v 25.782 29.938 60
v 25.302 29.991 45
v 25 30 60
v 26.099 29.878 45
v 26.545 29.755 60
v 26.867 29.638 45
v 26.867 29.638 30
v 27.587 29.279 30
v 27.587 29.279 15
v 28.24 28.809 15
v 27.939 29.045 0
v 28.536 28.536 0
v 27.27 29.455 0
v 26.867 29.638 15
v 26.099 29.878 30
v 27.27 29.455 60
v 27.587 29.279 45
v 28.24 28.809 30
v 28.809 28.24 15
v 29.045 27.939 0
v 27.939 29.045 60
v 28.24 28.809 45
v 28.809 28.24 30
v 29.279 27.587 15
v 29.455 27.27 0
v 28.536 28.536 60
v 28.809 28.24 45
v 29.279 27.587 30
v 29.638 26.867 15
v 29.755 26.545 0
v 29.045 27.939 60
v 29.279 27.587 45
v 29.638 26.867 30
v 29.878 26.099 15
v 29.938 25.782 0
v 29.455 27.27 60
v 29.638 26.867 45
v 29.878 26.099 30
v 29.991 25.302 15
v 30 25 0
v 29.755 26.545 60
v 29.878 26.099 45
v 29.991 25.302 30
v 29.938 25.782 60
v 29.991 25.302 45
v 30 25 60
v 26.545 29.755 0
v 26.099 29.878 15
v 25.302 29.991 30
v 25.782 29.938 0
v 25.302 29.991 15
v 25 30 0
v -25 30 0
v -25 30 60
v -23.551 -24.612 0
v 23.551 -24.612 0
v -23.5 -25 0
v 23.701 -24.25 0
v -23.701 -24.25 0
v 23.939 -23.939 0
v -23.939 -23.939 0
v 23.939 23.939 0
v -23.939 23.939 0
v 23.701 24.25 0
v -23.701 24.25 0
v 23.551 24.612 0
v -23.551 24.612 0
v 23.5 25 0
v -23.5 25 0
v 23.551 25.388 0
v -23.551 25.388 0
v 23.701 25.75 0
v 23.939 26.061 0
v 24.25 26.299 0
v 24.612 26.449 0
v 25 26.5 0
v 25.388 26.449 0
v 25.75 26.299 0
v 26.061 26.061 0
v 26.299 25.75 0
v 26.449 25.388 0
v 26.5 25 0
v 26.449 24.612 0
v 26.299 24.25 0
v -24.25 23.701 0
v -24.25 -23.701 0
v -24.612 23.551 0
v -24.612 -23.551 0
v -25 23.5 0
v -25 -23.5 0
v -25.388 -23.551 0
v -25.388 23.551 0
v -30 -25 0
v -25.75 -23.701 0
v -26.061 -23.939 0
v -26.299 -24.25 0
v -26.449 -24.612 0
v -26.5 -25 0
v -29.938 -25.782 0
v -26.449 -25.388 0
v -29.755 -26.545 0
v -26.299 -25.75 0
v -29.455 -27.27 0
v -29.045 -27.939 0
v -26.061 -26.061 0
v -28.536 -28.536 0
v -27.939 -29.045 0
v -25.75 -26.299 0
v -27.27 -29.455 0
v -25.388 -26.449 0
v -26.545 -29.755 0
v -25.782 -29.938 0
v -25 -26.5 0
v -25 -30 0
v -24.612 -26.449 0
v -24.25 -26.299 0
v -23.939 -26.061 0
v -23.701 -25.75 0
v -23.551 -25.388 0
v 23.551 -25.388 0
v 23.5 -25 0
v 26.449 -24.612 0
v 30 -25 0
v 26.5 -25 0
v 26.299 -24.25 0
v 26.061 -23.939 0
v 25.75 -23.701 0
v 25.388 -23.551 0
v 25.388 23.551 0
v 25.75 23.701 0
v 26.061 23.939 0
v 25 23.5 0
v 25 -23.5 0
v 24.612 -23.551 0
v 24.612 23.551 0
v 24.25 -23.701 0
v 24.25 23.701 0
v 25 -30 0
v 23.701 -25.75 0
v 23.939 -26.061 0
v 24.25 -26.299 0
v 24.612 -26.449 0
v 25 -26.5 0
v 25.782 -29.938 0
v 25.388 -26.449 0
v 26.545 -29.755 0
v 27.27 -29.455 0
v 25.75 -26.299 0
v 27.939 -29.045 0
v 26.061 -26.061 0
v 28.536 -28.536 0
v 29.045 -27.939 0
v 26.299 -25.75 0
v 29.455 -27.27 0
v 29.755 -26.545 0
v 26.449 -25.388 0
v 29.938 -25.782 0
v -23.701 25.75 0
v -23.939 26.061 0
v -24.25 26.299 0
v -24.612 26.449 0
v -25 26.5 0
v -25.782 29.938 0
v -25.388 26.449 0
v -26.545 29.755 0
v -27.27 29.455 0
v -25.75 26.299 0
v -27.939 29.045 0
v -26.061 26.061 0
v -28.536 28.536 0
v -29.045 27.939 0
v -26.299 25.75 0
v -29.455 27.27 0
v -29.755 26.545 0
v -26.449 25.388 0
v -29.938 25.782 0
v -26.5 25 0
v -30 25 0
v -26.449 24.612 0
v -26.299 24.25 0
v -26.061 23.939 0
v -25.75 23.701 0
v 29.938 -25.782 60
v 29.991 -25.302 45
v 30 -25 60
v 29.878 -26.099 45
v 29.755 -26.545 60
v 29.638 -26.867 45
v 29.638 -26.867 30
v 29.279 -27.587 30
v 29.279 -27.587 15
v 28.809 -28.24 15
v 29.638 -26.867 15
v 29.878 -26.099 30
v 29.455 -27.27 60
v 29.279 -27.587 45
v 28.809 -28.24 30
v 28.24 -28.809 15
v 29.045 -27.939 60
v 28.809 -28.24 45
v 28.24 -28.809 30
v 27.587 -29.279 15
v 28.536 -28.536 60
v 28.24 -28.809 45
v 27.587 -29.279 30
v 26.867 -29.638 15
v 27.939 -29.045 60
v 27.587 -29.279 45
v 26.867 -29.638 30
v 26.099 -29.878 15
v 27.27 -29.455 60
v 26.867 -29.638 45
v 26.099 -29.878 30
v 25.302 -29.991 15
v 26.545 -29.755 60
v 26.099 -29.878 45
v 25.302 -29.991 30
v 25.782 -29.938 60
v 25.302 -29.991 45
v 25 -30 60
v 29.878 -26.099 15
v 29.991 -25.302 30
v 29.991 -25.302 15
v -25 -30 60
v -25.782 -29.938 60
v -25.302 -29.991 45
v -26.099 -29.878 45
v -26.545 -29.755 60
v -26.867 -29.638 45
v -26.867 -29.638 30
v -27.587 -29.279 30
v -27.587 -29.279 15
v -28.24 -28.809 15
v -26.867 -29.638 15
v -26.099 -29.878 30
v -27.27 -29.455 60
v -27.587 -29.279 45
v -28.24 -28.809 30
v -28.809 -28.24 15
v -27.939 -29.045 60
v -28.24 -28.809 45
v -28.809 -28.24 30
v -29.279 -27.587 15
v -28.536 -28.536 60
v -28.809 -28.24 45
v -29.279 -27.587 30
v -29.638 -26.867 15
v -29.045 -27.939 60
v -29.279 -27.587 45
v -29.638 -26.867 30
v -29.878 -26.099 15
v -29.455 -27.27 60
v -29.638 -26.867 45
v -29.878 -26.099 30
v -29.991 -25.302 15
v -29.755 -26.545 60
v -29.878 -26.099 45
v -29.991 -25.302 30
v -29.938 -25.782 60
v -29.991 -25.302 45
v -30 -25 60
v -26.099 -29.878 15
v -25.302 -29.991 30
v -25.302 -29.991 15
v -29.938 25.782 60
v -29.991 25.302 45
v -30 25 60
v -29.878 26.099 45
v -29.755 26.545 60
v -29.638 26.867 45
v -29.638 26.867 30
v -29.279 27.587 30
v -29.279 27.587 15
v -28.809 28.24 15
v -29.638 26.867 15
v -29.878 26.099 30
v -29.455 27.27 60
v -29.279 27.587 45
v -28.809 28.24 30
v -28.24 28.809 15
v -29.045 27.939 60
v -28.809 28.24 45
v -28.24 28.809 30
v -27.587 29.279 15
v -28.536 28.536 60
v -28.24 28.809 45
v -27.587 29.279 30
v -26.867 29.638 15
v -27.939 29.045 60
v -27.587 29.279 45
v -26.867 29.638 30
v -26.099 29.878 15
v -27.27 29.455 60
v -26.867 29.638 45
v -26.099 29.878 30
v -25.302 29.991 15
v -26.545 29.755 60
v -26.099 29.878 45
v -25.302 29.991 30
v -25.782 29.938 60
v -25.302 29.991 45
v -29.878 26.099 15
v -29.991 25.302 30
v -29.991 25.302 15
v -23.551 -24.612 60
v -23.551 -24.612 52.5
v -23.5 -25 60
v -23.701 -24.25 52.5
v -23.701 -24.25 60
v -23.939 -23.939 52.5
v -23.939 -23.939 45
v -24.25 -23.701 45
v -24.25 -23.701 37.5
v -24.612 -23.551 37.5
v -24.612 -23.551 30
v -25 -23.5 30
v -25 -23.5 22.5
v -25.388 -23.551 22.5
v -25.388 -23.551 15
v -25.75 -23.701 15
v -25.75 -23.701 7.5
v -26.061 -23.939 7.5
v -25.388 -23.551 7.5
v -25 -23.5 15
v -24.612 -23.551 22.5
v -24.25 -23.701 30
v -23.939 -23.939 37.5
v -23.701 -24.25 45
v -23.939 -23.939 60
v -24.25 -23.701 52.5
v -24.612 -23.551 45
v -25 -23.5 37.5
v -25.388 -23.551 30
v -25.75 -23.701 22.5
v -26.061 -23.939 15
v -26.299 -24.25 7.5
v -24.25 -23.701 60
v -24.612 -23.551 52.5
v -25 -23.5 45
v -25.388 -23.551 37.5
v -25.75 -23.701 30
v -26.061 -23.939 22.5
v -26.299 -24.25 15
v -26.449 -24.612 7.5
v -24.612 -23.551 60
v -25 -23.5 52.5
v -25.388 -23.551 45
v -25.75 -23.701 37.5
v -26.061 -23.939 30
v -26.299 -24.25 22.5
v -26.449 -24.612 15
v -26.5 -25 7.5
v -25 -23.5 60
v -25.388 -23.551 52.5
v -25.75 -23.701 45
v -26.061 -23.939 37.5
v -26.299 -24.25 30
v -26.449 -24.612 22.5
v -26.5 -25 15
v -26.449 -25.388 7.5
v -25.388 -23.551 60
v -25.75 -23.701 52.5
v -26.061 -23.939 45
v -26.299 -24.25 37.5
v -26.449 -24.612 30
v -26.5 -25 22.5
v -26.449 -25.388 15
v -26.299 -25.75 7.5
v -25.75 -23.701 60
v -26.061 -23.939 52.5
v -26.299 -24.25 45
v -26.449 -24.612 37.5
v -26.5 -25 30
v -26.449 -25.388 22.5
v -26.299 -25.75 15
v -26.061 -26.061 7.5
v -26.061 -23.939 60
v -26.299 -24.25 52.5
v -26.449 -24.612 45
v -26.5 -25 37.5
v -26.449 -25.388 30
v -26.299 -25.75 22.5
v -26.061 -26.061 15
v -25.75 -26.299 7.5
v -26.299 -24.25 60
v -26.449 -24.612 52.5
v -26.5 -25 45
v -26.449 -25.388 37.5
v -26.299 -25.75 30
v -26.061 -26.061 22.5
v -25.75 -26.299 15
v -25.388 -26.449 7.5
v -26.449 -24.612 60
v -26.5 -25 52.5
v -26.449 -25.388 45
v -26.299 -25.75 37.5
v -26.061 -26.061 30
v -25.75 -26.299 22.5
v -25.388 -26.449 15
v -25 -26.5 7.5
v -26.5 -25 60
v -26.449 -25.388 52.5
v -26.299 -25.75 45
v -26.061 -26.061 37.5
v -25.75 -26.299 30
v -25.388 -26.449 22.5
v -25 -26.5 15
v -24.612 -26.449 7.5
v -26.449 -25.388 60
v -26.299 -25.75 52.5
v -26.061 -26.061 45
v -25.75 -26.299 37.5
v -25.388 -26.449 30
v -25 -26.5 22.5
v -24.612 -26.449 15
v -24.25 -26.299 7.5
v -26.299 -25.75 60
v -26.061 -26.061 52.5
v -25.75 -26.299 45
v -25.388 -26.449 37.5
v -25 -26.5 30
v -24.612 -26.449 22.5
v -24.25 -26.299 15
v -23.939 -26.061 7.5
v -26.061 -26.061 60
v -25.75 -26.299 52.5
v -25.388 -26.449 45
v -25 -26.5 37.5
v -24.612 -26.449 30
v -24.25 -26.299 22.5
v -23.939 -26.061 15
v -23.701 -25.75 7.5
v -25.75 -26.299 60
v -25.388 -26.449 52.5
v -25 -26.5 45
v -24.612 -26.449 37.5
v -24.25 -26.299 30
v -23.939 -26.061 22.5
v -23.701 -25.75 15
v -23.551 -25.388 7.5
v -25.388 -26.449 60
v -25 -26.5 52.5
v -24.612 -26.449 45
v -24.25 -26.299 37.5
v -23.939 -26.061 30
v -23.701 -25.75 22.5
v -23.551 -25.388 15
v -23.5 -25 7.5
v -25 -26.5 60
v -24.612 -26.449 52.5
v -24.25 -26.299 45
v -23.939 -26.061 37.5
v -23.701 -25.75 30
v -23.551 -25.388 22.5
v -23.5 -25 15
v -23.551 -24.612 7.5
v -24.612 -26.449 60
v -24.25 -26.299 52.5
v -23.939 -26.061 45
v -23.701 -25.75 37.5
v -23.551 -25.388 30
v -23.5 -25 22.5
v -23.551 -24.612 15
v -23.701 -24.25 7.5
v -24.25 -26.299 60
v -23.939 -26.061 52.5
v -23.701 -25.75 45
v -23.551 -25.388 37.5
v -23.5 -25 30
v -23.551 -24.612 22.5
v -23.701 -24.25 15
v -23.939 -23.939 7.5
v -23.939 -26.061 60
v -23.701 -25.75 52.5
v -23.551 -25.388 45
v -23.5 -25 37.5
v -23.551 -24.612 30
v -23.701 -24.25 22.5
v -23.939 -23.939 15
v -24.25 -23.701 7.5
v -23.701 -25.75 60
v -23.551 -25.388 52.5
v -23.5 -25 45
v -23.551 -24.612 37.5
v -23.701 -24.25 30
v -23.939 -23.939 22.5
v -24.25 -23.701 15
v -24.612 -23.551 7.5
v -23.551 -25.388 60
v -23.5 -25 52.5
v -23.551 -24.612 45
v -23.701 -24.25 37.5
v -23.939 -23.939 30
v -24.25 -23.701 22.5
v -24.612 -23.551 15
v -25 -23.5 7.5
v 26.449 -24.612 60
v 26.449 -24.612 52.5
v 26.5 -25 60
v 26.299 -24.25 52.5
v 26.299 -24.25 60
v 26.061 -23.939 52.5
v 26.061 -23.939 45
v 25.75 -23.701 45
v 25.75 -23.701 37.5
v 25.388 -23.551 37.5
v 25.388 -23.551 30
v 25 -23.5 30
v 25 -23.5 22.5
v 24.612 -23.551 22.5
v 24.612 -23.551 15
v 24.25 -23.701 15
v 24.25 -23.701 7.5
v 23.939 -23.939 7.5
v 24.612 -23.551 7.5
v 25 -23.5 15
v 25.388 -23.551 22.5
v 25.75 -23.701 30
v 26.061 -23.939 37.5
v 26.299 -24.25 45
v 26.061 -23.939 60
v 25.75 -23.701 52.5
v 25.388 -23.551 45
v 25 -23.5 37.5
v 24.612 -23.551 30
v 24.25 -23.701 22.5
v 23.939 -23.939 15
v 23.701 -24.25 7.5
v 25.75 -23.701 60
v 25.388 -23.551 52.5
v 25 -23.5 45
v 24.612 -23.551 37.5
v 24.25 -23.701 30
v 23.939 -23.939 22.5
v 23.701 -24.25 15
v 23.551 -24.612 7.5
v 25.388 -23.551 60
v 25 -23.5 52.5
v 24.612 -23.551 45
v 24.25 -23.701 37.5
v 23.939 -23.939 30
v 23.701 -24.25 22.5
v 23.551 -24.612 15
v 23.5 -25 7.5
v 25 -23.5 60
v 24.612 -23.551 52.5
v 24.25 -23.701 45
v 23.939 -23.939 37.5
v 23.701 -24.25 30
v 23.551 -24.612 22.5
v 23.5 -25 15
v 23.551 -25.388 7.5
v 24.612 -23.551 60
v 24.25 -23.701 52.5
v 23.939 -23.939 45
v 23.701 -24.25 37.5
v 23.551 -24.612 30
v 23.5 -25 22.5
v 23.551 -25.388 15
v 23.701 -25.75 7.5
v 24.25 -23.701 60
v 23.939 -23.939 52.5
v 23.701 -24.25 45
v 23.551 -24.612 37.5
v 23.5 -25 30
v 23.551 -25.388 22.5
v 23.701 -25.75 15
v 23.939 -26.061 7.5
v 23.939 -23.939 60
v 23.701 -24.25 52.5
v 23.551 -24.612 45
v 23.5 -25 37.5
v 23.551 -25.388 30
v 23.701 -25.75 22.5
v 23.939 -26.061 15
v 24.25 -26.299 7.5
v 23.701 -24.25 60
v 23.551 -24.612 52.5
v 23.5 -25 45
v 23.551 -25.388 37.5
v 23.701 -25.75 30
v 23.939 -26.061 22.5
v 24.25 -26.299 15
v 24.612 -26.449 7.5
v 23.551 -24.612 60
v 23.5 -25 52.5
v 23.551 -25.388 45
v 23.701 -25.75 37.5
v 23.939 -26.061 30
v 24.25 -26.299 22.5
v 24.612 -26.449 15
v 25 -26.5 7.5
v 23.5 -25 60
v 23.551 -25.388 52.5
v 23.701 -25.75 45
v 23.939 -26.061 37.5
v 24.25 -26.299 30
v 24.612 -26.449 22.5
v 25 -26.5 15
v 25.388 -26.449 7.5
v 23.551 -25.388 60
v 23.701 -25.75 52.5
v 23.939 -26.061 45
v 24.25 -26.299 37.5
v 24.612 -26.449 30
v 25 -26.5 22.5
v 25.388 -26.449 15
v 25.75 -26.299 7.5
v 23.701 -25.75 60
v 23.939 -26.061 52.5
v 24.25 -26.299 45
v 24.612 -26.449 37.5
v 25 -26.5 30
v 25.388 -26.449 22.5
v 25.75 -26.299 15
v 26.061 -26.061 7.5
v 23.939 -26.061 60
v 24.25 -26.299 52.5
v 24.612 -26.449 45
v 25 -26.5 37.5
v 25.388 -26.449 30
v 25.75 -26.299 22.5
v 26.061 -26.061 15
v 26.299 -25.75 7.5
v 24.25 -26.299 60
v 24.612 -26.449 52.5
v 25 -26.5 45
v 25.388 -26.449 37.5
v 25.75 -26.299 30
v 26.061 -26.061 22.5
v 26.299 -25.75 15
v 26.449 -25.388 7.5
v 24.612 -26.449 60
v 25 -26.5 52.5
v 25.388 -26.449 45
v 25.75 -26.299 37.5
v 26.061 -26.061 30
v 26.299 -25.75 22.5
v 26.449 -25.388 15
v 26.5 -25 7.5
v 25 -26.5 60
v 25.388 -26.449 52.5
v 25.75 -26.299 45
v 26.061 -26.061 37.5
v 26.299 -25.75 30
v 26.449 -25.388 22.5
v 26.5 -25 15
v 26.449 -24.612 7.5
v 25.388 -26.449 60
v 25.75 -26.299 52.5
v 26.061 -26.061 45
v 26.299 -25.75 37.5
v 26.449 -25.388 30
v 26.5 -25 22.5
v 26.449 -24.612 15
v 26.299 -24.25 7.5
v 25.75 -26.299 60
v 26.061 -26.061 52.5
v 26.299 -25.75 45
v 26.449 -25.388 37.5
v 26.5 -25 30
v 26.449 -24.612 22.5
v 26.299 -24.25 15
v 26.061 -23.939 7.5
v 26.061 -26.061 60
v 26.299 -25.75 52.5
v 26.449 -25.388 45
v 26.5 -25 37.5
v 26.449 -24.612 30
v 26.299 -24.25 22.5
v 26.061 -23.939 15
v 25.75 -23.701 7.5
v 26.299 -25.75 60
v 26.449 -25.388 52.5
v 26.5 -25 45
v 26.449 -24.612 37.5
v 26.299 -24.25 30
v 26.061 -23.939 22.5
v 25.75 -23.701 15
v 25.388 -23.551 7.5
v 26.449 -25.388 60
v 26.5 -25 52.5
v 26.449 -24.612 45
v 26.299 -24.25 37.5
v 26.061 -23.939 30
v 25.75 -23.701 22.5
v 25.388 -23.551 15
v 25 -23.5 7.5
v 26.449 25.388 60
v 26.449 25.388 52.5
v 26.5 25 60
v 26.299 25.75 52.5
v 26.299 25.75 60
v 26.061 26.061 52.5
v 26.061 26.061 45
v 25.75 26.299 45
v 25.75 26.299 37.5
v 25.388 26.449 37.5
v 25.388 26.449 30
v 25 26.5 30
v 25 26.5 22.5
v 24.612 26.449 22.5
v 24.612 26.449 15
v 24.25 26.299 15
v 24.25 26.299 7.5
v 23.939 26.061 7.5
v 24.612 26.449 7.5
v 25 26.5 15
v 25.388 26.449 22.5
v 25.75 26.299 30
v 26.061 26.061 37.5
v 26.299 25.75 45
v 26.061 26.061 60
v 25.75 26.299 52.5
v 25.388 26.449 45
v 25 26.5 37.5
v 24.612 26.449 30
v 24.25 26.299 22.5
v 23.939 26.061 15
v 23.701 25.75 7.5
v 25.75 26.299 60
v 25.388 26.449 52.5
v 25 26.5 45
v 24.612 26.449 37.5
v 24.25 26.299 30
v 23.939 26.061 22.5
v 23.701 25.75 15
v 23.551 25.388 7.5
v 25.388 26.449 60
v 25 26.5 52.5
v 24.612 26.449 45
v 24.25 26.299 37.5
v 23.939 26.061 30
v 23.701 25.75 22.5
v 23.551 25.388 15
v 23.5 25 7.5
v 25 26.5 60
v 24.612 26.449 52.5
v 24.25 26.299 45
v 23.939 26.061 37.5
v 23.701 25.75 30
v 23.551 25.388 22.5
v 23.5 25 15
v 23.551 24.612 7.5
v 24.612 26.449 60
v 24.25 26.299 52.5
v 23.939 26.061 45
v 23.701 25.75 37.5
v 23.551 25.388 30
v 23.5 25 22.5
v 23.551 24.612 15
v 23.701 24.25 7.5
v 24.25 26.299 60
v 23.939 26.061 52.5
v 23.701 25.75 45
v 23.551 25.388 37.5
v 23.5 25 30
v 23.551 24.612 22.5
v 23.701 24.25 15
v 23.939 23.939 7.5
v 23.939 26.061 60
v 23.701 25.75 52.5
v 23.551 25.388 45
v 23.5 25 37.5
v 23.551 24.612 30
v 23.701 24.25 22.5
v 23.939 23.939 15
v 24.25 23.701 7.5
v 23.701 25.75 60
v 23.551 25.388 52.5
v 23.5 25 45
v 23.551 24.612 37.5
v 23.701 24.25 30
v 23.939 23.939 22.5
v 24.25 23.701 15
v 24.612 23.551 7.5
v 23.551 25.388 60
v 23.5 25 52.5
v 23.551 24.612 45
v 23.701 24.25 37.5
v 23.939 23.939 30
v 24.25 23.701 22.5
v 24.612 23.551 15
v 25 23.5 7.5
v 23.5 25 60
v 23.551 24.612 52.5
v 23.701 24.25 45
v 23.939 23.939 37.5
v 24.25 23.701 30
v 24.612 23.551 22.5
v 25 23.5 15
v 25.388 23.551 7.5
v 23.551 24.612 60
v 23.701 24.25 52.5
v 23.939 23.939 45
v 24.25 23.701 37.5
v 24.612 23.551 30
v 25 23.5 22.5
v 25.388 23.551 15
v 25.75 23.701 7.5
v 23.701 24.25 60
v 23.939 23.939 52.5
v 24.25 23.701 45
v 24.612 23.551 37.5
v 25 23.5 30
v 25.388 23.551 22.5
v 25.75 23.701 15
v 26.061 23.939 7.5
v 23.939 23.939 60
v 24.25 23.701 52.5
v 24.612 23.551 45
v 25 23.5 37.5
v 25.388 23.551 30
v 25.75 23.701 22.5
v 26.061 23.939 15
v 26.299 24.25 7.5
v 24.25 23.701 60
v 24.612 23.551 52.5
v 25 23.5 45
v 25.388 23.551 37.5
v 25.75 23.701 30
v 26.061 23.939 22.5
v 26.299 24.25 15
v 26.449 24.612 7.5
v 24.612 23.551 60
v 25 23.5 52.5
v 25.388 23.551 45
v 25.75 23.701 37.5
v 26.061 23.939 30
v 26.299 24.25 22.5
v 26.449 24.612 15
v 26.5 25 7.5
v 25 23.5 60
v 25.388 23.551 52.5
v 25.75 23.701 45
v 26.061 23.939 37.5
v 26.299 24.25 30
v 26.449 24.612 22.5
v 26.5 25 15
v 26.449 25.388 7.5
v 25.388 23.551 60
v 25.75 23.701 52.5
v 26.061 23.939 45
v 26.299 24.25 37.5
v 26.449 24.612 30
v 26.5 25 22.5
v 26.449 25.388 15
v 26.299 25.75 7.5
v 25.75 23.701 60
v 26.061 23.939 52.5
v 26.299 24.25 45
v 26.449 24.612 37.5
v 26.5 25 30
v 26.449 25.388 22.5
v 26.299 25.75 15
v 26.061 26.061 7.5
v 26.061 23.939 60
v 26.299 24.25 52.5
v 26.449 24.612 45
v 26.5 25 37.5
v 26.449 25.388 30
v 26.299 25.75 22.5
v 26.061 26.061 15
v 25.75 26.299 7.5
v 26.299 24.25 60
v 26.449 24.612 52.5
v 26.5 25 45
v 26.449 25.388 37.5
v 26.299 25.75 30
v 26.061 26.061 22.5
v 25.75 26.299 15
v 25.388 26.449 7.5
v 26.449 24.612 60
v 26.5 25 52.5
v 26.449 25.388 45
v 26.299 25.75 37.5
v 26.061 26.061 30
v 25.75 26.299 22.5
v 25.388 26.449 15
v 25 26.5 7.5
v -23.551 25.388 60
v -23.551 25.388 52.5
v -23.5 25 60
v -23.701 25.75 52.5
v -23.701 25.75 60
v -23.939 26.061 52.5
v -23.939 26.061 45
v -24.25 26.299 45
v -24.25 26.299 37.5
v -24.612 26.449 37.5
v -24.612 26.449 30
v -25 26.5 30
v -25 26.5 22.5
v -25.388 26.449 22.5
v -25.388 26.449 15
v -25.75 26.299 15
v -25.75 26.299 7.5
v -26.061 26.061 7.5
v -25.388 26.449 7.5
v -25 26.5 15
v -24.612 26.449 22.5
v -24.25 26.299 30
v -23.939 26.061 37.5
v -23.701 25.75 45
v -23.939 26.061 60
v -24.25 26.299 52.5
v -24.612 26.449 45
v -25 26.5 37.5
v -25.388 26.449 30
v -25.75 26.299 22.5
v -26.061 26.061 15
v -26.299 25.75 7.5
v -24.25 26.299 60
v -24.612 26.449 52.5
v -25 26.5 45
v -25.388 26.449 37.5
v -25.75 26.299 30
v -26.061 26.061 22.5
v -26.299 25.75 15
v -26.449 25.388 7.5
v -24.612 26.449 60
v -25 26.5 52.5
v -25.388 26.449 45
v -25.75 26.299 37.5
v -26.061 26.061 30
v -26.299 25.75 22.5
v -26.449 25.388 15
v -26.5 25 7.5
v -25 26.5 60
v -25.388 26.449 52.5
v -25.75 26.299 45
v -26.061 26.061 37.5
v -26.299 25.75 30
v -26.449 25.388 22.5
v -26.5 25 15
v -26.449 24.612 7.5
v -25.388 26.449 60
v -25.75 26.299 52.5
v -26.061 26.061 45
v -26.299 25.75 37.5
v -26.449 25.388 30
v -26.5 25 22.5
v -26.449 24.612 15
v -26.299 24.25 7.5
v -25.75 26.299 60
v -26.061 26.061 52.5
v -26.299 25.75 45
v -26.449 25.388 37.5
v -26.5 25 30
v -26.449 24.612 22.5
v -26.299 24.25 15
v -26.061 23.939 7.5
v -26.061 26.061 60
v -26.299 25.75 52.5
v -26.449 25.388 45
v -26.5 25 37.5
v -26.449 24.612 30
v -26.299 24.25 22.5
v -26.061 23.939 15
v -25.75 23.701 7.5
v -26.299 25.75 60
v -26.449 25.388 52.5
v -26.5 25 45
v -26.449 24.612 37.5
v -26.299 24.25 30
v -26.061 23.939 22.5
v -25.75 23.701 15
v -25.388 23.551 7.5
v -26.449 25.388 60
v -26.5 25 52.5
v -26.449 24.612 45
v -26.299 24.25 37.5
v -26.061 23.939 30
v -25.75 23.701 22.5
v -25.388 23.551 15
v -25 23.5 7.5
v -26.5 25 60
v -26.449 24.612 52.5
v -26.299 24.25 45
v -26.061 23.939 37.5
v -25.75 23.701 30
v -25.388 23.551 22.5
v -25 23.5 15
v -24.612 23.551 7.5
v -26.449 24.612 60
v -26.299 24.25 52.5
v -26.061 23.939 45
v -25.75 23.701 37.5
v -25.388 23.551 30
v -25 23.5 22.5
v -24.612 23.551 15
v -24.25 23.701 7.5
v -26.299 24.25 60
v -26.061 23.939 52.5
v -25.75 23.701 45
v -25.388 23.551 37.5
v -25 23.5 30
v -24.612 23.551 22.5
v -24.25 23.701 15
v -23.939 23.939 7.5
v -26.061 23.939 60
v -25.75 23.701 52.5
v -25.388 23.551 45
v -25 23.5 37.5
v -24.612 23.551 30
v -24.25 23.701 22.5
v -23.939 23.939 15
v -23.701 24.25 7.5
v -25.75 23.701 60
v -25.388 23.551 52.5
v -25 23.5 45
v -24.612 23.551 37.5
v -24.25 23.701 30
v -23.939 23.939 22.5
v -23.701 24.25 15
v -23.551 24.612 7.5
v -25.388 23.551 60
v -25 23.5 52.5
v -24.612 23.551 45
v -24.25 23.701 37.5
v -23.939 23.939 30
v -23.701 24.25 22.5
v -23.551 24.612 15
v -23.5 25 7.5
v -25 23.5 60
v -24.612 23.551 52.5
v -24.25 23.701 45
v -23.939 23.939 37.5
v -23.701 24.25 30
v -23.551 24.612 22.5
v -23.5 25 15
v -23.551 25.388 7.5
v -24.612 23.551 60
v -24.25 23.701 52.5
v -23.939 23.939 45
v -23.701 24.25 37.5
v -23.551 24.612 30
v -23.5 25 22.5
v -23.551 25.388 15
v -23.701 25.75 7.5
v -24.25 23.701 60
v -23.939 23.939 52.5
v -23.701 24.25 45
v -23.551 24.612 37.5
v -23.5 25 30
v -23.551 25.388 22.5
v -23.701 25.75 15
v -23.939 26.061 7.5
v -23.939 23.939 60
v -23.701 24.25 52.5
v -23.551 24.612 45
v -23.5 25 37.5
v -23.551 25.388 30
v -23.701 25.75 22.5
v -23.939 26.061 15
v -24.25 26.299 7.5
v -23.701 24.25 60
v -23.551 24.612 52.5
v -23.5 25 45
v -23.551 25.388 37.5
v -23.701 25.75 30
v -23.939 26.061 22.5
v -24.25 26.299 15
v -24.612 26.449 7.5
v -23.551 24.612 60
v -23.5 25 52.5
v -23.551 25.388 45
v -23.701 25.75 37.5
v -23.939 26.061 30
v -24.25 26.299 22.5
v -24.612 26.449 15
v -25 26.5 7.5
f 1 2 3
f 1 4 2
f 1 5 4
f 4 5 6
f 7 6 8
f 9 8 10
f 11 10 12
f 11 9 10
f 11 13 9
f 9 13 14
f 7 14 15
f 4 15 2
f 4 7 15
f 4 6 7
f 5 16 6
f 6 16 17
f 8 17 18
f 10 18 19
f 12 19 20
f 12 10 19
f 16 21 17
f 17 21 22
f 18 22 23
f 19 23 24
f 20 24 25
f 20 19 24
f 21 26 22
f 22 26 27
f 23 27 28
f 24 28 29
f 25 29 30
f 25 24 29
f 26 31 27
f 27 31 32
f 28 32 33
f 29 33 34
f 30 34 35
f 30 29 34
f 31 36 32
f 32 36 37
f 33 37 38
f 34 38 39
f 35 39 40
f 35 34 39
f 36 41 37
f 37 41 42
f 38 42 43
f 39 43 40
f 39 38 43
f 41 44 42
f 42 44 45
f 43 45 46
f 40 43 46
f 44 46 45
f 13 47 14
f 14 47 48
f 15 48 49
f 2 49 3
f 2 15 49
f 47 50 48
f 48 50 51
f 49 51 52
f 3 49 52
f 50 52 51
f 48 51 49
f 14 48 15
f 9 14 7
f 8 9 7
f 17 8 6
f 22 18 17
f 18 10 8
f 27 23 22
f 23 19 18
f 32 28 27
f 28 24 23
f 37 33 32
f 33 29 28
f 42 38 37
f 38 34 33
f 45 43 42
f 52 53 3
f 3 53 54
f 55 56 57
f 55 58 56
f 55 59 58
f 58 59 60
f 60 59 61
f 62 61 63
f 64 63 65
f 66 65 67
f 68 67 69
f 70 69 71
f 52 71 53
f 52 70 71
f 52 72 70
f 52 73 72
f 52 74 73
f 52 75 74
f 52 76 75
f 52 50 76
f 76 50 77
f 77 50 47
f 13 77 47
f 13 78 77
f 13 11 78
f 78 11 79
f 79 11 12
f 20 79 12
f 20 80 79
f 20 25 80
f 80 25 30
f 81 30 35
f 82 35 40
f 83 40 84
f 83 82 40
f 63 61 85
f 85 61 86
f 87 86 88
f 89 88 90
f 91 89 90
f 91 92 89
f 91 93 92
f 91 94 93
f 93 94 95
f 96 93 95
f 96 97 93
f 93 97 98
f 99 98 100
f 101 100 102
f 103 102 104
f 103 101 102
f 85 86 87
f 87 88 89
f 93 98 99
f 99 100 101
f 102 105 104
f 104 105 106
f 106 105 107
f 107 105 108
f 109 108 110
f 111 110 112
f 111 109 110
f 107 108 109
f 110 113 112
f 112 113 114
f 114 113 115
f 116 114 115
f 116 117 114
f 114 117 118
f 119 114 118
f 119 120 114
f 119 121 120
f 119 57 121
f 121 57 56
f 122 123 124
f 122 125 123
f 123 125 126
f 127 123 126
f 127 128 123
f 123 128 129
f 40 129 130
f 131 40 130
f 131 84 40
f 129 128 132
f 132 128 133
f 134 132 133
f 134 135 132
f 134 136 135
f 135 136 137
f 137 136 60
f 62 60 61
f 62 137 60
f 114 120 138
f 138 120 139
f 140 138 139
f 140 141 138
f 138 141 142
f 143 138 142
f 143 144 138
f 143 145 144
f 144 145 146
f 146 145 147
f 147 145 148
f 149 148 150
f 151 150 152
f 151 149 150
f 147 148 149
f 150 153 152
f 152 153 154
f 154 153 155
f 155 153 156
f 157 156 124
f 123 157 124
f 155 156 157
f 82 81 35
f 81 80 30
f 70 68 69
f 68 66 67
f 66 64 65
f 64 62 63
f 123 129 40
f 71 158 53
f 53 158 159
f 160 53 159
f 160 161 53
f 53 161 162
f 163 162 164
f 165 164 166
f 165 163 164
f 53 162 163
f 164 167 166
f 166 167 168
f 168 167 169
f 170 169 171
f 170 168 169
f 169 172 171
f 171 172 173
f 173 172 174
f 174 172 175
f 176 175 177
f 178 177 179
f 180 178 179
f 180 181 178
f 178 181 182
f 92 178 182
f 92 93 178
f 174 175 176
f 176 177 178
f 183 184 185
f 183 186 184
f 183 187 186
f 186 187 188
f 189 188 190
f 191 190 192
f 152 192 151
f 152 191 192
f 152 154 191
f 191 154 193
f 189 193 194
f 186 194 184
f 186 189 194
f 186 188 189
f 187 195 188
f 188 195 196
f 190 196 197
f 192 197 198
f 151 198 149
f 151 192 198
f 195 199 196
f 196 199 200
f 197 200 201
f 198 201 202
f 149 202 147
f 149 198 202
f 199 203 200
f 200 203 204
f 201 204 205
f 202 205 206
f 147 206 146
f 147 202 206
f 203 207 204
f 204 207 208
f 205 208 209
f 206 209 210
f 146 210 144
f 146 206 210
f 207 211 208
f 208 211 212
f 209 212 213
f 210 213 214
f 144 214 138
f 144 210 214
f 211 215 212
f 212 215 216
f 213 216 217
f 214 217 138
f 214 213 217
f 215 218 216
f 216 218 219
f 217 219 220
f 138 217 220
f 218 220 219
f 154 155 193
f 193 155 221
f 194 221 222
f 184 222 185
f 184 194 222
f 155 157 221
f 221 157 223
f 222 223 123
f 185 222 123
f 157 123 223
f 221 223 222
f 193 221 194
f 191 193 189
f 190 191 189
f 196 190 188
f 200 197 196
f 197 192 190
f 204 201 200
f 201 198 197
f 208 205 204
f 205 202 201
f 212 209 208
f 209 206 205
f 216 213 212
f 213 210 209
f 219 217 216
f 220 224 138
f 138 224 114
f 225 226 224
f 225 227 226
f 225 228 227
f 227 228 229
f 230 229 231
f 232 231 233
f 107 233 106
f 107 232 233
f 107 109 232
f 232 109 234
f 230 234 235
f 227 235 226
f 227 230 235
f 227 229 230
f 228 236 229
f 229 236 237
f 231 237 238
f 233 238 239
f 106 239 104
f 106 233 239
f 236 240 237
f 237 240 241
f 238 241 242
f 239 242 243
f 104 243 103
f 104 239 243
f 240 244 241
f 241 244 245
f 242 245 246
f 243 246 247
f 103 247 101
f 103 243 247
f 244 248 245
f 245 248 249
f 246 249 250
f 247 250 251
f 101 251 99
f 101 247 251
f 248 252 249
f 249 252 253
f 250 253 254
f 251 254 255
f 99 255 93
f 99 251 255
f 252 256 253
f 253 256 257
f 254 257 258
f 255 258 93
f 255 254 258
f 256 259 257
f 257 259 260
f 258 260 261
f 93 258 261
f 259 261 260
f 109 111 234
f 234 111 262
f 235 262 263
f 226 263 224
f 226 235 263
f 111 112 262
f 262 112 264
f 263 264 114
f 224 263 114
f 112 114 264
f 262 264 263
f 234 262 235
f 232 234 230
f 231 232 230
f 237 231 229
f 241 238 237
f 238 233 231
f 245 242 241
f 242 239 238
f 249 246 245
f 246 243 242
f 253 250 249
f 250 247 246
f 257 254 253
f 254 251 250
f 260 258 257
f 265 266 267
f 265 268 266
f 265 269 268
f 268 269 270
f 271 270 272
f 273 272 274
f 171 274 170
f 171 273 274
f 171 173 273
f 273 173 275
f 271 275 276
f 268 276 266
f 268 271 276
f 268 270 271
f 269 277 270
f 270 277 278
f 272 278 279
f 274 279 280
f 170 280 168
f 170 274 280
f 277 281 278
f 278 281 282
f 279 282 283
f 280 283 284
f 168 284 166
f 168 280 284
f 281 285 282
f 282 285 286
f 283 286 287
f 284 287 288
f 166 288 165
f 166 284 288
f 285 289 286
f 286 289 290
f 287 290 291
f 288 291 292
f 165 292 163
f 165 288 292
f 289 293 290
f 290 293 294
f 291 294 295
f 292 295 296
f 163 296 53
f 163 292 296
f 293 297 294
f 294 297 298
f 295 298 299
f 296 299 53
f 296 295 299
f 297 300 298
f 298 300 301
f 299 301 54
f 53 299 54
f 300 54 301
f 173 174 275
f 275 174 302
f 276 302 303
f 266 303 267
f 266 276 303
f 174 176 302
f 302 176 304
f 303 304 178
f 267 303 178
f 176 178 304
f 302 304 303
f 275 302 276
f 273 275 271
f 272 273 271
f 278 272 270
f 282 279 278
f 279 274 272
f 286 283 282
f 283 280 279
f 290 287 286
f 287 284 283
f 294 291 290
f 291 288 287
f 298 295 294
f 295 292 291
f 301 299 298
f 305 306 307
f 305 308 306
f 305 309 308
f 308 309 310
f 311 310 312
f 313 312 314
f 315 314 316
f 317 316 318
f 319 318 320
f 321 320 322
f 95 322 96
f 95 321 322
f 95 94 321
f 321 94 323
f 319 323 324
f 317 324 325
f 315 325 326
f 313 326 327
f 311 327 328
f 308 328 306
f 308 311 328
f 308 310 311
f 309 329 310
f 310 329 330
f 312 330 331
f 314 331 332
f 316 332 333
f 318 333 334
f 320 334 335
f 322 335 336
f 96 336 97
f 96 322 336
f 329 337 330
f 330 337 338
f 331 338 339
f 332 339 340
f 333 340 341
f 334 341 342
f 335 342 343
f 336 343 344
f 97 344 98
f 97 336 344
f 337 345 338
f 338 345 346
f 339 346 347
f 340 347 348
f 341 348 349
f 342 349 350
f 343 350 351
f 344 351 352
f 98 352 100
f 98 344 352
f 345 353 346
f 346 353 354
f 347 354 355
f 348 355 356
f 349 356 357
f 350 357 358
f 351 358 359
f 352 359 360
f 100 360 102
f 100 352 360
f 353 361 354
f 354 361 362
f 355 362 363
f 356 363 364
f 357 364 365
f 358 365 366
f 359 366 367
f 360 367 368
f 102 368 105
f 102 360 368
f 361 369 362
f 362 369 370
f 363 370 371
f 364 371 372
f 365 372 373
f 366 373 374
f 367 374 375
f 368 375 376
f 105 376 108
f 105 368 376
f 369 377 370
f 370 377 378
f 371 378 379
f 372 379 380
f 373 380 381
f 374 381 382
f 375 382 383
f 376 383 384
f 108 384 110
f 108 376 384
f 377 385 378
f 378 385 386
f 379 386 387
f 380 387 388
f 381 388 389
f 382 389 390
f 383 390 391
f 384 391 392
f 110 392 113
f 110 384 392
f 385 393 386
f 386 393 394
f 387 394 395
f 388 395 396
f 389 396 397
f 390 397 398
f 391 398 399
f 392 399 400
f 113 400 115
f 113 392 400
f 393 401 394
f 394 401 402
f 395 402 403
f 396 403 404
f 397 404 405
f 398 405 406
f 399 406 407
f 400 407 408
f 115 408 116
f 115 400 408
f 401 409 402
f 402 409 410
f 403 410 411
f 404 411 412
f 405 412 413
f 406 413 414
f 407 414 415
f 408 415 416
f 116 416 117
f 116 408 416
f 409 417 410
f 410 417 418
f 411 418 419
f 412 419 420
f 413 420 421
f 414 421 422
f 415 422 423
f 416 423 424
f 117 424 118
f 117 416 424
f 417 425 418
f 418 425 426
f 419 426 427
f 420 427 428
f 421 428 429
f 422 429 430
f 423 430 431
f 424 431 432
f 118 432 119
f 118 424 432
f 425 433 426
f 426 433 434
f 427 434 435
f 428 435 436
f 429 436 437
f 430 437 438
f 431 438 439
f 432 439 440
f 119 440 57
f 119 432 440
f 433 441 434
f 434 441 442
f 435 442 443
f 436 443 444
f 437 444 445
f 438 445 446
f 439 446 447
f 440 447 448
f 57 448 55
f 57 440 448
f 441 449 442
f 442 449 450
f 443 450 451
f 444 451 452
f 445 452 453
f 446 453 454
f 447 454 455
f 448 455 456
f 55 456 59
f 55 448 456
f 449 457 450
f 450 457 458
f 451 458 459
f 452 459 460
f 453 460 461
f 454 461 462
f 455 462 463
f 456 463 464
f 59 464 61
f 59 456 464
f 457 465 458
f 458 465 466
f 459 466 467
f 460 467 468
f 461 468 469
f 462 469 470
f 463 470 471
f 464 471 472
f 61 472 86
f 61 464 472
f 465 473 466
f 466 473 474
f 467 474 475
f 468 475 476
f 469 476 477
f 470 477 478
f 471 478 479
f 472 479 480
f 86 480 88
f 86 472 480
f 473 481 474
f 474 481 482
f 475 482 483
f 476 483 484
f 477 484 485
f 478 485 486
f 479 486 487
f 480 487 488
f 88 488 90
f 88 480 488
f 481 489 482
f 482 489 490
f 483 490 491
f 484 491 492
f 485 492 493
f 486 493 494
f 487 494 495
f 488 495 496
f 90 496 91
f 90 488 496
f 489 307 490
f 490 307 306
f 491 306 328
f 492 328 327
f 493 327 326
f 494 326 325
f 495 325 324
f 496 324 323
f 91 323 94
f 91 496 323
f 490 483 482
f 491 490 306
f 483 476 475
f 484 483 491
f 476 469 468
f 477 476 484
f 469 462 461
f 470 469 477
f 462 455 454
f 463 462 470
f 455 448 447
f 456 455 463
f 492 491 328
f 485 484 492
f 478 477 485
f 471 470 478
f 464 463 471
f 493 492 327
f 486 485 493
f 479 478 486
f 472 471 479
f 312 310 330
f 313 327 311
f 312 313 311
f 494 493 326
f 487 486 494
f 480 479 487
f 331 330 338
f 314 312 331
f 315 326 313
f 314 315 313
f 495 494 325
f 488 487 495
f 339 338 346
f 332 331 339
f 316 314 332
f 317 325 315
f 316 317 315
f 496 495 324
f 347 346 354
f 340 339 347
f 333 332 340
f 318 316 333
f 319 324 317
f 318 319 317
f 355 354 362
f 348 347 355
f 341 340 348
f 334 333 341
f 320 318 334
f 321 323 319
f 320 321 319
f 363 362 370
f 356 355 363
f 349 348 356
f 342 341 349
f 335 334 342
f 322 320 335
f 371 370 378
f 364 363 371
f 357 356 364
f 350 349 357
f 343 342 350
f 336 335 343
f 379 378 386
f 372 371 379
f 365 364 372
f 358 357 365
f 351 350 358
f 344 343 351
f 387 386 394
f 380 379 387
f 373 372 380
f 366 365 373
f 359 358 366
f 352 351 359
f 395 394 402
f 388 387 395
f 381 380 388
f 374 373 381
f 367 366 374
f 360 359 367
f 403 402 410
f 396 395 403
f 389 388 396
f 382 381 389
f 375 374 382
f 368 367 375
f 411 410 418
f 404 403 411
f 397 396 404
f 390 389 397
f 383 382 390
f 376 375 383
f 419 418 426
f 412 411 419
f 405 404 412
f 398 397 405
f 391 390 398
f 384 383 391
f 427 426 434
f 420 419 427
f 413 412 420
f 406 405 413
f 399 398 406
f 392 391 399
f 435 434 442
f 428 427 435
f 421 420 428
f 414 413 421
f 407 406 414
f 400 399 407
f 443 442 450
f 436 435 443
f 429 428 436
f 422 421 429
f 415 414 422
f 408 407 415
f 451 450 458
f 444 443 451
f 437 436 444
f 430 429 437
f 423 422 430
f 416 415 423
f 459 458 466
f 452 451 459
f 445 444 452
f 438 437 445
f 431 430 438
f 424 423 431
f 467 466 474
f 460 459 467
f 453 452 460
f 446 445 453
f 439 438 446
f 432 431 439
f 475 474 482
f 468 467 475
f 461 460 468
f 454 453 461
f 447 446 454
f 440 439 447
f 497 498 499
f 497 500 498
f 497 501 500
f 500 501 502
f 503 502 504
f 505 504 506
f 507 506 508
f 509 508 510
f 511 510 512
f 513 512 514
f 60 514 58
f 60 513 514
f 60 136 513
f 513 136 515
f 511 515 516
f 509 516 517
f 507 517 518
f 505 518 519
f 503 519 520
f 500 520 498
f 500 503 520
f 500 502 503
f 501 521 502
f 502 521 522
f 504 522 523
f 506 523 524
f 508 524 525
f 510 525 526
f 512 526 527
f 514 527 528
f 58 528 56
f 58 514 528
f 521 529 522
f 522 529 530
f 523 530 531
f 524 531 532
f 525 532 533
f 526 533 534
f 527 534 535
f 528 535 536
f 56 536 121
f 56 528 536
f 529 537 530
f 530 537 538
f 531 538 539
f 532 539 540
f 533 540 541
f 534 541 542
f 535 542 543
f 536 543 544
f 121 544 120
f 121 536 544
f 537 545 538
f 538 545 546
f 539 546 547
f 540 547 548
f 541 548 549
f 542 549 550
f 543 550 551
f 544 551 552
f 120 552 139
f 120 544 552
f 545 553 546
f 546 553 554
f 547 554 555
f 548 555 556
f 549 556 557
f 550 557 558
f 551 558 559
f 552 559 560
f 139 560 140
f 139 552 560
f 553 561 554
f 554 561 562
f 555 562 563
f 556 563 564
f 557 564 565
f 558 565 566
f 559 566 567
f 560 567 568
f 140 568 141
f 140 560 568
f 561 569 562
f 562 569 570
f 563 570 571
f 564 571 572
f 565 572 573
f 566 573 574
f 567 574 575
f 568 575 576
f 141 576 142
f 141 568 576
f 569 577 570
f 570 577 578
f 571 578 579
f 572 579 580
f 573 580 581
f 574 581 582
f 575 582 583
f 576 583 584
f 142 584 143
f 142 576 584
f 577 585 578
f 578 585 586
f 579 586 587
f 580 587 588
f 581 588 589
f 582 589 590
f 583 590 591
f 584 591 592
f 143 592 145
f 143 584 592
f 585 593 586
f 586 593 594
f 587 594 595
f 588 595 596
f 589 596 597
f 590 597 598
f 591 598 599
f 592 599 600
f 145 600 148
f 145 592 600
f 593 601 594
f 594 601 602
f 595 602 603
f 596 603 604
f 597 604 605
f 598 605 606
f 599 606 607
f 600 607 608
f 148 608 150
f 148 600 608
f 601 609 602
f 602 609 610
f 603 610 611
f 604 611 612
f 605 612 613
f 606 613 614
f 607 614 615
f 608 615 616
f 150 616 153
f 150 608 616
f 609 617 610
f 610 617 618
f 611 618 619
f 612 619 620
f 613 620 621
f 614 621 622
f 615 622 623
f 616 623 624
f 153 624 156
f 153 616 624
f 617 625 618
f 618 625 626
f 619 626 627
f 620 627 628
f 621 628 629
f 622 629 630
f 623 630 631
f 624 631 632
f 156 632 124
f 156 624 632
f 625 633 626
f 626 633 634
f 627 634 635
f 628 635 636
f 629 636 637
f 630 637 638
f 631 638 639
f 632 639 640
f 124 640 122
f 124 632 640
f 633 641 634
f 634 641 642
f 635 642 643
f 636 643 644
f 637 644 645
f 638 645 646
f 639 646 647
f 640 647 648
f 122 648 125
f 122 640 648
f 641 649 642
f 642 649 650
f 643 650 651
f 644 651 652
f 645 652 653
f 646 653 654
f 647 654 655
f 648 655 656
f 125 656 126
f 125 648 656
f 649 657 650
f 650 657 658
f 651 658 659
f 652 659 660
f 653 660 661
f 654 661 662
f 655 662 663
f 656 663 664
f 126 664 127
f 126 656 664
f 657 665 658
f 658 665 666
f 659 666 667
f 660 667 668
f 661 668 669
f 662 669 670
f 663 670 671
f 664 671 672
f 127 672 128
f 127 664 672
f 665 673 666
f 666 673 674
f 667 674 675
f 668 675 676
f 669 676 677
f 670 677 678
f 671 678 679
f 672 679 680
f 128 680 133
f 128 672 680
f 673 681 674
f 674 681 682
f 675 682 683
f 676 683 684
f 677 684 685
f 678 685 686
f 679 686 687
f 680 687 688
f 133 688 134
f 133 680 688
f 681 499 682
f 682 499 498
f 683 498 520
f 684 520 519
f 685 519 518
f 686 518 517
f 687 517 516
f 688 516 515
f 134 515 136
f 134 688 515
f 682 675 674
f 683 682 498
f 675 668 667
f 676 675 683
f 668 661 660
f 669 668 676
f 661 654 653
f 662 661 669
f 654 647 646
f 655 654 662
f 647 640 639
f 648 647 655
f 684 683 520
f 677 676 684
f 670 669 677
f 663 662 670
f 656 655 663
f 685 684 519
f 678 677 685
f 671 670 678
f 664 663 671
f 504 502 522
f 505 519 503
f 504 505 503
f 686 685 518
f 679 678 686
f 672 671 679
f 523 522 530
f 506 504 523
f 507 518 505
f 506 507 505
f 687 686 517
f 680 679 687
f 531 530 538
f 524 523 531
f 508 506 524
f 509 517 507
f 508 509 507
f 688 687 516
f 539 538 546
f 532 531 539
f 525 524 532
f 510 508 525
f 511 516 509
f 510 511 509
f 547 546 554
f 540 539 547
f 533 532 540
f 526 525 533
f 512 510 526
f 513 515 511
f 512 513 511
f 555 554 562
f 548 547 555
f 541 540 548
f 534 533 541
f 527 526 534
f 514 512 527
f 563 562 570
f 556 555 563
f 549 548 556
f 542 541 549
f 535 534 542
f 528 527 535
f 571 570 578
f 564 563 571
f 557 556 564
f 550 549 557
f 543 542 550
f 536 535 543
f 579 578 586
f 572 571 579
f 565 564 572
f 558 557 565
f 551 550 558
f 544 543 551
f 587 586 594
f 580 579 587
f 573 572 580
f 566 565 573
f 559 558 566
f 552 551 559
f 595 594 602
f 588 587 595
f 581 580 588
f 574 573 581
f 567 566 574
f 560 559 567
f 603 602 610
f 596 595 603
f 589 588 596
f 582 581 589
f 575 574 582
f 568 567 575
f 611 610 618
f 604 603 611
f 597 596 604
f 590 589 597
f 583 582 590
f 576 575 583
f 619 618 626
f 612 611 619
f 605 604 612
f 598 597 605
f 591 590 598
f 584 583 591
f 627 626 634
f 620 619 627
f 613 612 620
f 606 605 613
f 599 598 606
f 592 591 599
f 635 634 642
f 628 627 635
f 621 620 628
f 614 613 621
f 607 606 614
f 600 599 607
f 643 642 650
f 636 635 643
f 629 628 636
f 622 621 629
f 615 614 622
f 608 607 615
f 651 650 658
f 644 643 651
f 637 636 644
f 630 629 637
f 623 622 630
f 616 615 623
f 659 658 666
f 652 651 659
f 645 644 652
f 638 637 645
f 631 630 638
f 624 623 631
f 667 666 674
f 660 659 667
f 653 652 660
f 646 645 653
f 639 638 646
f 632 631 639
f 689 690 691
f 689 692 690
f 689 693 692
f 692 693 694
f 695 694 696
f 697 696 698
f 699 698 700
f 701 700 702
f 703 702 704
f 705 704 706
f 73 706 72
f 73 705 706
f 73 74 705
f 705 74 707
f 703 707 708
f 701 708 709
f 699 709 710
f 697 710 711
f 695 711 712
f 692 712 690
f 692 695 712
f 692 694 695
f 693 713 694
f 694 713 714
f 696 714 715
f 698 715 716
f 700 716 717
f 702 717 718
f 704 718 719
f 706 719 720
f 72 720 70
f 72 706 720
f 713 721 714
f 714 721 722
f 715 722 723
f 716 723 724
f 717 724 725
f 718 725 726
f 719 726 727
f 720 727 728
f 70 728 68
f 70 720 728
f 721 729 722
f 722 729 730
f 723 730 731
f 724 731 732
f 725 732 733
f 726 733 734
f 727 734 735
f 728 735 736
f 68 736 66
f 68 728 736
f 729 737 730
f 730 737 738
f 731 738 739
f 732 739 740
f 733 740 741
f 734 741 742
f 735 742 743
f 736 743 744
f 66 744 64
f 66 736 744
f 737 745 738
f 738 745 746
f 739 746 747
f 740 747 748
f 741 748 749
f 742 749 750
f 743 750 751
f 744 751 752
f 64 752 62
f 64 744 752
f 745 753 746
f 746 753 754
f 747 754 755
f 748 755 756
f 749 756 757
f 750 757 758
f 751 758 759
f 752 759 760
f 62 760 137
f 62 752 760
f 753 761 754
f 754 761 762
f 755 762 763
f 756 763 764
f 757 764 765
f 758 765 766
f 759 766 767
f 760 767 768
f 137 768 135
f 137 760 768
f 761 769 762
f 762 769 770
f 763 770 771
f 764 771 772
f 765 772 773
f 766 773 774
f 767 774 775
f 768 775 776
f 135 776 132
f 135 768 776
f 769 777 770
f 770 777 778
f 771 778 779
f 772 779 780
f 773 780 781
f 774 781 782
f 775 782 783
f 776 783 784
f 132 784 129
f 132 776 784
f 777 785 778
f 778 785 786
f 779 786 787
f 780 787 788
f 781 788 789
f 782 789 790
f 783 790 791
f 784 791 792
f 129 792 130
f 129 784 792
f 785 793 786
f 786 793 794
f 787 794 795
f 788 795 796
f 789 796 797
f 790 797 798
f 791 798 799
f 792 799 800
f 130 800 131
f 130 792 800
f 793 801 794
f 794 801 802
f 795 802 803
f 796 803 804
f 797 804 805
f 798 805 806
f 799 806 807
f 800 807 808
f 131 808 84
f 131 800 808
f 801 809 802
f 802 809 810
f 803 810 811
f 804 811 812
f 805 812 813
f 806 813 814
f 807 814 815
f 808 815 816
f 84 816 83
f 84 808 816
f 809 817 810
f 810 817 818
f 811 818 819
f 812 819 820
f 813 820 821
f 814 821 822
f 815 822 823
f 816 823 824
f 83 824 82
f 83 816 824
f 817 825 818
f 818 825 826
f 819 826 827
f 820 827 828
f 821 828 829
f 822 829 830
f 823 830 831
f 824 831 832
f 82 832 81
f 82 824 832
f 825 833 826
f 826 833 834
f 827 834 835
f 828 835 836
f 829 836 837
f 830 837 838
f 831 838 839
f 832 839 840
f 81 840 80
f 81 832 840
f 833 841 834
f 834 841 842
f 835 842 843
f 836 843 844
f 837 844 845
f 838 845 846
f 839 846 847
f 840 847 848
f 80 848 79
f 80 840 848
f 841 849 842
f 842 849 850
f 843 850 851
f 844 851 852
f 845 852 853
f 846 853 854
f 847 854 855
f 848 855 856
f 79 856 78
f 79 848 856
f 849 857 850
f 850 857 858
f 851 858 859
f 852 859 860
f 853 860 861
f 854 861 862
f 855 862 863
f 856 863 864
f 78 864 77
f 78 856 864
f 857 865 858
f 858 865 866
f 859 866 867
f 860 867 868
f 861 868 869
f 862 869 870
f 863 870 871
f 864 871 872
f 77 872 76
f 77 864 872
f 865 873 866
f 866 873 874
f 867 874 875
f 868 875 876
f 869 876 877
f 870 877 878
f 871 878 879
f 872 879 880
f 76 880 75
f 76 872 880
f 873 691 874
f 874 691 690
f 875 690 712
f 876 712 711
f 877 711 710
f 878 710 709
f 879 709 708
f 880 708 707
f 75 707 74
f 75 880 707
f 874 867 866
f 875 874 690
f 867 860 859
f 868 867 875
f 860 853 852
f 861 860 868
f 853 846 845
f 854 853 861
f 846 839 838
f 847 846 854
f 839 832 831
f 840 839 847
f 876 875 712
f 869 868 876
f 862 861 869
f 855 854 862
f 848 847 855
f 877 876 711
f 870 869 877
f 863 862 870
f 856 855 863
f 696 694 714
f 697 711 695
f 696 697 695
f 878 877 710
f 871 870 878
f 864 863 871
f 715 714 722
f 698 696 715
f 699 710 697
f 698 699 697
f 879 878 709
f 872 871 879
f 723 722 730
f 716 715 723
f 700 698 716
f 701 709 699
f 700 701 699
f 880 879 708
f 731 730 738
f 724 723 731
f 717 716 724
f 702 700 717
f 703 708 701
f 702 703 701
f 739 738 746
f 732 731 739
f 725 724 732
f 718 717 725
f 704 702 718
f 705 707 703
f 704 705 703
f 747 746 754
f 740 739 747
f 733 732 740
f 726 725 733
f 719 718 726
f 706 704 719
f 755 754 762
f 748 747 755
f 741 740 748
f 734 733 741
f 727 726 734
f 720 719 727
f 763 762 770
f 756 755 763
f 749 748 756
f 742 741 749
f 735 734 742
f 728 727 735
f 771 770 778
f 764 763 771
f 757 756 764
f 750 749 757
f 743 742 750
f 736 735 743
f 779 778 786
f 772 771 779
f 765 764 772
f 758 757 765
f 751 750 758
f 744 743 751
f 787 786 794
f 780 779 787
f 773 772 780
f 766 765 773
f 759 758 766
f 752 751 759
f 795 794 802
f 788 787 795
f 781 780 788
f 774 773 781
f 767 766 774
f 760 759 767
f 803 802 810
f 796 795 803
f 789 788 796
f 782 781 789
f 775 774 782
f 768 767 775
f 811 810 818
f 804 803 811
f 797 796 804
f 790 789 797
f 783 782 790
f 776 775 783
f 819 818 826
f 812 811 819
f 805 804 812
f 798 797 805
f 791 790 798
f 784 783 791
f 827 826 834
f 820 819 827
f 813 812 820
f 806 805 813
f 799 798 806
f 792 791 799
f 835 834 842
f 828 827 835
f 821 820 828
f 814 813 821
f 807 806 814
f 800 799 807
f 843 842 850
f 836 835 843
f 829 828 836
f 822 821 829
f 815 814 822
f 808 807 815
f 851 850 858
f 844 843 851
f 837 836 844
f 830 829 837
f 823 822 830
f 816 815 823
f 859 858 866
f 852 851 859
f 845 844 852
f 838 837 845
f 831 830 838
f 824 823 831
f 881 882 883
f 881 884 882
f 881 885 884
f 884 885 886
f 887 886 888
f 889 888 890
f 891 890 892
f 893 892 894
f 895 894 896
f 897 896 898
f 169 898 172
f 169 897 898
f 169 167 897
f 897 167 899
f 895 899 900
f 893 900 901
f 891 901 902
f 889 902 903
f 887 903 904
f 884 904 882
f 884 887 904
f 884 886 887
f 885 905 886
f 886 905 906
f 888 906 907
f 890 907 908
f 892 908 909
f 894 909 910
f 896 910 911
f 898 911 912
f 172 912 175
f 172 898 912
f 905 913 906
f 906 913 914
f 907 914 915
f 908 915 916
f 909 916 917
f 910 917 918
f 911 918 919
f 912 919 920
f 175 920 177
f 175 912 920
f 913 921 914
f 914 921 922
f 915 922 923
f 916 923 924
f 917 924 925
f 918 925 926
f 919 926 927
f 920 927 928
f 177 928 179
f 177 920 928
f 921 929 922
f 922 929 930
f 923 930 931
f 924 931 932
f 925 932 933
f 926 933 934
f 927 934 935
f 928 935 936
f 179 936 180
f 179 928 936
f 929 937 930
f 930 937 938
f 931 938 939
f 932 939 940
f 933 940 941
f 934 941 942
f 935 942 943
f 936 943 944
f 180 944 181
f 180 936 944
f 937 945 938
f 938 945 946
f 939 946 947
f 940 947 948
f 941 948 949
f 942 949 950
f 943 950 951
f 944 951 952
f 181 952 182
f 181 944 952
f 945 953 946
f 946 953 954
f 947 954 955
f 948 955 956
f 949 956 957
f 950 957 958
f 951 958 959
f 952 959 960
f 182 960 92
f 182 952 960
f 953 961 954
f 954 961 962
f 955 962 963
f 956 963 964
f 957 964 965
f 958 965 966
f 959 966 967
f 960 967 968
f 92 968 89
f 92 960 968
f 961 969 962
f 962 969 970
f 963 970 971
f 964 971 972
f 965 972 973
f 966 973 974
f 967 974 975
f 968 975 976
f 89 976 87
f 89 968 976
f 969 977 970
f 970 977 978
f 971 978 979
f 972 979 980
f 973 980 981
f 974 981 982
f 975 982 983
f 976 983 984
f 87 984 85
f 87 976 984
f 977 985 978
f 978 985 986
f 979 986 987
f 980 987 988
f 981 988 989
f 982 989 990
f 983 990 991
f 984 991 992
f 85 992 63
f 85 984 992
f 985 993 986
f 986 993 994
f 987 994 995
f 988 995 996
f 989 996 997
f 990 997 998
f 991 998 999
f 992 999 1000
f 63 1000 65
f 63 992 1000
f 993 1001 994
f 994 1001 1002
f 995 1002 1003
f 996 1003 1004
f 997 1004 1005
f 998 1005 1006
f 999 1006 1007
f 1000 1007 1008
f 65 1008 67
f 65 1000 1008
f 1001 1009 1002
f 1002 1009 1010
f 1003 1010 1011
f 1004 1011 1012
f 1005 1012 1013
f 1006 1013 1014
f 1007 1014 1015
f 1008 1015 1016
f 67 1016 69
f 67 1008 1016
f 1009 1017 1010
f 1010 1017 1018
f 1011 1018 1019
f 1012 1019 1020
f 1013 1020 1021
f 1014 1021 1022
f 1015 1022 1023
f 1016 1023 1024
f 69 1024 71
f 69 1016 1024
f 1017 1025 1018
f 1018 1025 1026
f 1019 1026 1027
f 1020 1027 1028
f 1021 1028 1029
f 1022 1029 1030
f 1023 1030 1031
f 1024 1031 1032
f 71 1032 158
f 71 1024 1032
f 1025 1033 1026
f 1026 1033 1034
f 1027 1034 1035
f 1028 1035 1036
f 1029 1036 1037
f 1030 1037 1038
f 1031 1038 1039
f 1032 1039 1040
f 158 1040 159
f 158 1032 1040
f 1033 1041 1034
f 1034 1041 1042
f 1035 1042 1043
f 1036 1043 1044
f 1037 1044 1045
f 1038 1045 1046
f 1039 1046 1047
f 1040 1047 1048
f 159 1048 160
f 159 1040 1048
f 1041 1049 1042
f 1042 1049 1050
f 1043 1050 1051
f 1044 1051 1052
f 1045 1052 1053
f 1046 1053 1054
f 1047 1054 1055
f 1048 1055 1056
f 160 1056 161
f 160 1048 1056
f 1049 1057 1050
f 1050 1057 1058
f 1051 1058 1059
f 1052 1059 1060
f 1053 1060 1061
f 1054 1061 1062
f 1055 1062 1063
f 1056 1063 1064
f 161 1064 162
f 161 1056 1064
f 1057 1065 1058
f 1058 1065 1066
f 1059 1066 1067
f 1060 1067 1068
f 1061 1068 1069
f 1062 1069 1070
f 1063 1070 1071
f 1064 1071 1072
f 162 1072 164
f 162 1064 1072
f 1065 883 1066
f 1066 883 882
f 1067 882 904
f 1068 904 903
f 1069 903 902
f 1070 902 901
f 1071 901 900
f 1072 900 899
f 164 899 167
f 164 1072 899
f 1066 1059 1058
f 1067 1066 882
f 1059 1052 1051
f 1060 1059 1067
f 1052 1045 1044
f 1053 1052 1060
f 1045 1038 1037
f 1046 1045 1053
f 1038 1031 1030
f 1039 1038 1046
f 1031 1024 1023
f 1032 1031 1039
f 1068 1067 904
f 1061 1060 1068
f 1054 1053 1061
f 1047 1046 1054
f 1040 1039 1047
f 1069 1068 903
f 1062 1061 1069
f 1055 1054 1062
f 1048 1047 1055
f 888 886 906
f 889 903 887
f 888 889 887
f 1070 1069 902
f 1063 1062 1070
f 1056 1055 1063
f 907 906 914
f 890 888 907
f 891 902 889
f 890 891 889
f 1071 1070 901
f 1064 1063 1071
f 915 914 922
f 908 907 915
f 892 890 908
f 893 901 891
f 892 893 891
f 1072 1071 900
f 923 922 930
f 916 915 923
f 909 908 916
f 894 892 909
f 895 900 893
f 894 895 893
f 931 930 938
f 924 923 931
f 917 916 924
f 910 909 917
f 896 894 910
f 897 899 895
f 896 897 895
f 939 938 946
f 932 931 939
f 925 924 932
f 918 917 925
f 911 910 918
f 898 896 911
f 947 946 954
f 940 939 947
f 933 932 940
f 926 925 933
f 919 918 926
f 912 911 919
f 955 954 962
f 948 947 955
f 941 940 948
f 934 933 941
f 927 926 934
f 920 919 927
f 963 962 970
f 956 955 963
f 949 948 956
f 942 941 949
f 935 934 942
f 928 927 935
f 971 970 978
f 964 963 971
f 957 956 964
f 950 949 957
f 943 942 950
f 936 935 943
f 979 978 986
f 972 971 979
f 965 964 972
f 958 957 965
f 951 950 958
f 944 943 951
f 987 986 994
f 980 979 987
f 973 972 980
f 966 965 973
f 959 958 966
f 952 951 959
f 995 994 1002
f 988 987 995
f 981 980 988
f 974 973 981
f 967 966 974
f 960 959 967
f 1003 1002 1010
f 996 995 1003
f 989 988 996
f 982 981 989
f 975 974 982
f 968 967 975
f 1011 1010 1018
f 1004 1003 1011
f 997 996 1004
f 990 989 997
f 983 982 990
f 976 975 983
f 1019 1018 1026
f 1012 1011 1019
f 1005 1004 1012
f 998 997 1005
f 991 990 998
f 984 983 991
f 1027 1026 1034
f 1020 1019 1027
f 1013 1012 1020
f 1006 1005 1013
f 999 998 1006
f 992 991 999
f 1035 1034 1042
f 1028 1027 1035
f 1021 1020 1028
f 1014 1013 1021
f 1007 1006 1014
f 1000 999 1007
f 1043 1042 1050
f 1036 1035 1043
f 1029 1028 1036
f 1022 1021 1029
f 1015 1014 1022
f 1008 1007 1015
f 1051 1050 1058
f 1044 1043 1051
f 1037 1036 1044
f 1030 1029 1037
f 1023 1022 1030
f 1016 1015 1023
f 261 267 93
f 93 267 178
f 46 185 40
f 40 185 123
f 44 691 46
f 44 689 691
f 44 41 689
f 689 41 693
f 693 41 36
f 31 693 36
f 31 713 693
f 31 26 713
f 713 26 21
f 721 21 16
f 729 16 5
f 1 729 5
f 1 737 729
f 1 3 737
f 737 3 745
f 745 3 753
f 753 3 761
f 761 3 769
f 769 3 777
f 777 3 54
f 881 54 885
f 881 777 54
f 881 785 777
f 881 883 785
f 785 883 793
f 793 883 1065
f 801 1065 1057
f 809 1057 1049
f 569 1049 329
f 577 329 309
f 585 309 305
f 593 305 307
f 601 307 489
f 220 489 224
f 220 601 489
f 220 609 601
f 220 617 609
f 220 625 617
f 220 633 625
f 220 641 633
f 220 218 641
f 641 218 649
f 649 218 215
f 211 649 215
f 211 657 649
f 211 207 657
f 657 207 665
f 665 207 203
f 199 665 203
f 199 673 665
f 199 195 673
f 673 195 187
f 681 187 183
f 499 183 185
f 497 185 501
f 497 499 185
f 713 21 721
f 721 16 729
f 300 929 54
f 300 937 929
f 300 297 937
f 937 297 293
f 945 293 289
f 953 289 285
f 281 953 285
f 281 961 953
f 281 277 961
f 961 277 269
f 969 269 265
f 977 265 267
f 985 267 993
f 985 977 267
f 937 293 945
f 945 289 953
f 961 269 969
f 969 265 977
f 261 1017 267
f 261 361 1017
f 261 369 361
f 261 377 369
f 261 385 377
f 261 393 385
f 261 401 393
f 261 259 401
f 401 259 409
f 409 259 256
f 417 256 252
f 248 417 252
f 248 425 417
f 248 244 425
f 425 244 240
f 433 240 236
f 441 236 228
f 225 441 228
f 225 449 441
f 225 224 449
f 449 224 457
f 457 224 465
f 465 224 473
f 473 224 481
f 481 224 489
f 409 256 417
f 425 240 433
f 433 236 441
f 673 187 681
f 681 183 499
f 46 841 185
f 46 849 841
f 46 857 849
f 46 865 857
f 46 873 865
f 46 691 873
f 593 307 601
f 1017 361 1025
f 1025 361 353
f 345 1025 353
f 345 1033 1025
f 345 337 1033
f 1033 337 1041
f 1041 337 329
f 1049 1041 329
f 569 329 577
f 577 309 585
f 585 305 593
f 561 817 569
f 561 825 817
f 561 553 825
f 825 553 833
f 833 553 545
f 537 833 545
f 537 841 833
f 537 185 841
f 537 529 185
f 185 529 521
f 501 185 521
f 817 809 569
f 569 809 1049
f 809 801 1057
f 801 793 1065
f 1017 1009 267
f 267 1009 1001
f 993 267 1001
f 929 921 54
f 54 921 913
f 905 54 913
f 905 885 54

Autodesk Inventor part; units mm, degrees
ref_plane "YZ Plane" through (0, 0, 0) normal (1, 0, 0) x (0, 1, 0)
ref_plane "XZ Plane" through (0, 0, 0) normal (0, 1, 0) x (-1, 0, 0)
ref_plane "XY Plane" through (0, 0, 0) normal (0, 0, 1) x (1, 0, 0)
sketch "Sketch1" plane through (0, 0, 0) normal (0, 0, 1) x (1, 0, 0)
  line L0 (-30, -30) -> (30, -30)
  line L1 (30, -30) -> (30, 30)
  line L2 (30, 30) -> (-30, 30)
  line L3 (-30, 30) -> (-30, -30)
  line L4 (-30, -30) -> (30, 30) construction
  line L5 (30, -30) -> (-30, 30) construction
  line L6 (30, 30) -> (25, 30) construction
  line L7 (25, 30) -> (25, 25) construction
  line L8 (-30, 30) -> (-25, 30) construction
  line L9 (-25, 30) -> (-25, 25) construction
  line L10 (-30, -30) -> (-30, -25) construction
  line L11 (-30, -25) -> (-25, -25) construction
  line L12 (30, -30) -> (30, -25) construction
  line L13 (30, -25) -> (25, -25) construction
  circle A0 centre (-25, 25) radius 1.5
  circle A1 centre (25, 25) radius 1.5
  circle A2 centre (25, -25) radius 1.5
  circle A3 centre (-25, -25) radius 1.5
  point P0 (0, 0)
  dimension "d0" = 60
  dimension "d1" = 60
  dimension "d2" = 5
  dimension "d3" = 5
  dimension "d4" = 5
  dimension "d5" = 5
  dimension "d6" = 5
  dimension "d7" = 5
  dimension "d8" = 5
  dimension "d9" = 5
  dimension "d10" = 3
  dimension "d11" = 3
  dimension "d12" = 3
  dimension "d13" = 3
extrude "Block" add sketch "Sketch1" along normal blind 60
fillet "Fillets FTW" radius 5 4 edges at (-30, 30, 30) (-30, -30, 30) (30, -30, 30) (30, 30, 30)
properties part number "60x60Spacer"
